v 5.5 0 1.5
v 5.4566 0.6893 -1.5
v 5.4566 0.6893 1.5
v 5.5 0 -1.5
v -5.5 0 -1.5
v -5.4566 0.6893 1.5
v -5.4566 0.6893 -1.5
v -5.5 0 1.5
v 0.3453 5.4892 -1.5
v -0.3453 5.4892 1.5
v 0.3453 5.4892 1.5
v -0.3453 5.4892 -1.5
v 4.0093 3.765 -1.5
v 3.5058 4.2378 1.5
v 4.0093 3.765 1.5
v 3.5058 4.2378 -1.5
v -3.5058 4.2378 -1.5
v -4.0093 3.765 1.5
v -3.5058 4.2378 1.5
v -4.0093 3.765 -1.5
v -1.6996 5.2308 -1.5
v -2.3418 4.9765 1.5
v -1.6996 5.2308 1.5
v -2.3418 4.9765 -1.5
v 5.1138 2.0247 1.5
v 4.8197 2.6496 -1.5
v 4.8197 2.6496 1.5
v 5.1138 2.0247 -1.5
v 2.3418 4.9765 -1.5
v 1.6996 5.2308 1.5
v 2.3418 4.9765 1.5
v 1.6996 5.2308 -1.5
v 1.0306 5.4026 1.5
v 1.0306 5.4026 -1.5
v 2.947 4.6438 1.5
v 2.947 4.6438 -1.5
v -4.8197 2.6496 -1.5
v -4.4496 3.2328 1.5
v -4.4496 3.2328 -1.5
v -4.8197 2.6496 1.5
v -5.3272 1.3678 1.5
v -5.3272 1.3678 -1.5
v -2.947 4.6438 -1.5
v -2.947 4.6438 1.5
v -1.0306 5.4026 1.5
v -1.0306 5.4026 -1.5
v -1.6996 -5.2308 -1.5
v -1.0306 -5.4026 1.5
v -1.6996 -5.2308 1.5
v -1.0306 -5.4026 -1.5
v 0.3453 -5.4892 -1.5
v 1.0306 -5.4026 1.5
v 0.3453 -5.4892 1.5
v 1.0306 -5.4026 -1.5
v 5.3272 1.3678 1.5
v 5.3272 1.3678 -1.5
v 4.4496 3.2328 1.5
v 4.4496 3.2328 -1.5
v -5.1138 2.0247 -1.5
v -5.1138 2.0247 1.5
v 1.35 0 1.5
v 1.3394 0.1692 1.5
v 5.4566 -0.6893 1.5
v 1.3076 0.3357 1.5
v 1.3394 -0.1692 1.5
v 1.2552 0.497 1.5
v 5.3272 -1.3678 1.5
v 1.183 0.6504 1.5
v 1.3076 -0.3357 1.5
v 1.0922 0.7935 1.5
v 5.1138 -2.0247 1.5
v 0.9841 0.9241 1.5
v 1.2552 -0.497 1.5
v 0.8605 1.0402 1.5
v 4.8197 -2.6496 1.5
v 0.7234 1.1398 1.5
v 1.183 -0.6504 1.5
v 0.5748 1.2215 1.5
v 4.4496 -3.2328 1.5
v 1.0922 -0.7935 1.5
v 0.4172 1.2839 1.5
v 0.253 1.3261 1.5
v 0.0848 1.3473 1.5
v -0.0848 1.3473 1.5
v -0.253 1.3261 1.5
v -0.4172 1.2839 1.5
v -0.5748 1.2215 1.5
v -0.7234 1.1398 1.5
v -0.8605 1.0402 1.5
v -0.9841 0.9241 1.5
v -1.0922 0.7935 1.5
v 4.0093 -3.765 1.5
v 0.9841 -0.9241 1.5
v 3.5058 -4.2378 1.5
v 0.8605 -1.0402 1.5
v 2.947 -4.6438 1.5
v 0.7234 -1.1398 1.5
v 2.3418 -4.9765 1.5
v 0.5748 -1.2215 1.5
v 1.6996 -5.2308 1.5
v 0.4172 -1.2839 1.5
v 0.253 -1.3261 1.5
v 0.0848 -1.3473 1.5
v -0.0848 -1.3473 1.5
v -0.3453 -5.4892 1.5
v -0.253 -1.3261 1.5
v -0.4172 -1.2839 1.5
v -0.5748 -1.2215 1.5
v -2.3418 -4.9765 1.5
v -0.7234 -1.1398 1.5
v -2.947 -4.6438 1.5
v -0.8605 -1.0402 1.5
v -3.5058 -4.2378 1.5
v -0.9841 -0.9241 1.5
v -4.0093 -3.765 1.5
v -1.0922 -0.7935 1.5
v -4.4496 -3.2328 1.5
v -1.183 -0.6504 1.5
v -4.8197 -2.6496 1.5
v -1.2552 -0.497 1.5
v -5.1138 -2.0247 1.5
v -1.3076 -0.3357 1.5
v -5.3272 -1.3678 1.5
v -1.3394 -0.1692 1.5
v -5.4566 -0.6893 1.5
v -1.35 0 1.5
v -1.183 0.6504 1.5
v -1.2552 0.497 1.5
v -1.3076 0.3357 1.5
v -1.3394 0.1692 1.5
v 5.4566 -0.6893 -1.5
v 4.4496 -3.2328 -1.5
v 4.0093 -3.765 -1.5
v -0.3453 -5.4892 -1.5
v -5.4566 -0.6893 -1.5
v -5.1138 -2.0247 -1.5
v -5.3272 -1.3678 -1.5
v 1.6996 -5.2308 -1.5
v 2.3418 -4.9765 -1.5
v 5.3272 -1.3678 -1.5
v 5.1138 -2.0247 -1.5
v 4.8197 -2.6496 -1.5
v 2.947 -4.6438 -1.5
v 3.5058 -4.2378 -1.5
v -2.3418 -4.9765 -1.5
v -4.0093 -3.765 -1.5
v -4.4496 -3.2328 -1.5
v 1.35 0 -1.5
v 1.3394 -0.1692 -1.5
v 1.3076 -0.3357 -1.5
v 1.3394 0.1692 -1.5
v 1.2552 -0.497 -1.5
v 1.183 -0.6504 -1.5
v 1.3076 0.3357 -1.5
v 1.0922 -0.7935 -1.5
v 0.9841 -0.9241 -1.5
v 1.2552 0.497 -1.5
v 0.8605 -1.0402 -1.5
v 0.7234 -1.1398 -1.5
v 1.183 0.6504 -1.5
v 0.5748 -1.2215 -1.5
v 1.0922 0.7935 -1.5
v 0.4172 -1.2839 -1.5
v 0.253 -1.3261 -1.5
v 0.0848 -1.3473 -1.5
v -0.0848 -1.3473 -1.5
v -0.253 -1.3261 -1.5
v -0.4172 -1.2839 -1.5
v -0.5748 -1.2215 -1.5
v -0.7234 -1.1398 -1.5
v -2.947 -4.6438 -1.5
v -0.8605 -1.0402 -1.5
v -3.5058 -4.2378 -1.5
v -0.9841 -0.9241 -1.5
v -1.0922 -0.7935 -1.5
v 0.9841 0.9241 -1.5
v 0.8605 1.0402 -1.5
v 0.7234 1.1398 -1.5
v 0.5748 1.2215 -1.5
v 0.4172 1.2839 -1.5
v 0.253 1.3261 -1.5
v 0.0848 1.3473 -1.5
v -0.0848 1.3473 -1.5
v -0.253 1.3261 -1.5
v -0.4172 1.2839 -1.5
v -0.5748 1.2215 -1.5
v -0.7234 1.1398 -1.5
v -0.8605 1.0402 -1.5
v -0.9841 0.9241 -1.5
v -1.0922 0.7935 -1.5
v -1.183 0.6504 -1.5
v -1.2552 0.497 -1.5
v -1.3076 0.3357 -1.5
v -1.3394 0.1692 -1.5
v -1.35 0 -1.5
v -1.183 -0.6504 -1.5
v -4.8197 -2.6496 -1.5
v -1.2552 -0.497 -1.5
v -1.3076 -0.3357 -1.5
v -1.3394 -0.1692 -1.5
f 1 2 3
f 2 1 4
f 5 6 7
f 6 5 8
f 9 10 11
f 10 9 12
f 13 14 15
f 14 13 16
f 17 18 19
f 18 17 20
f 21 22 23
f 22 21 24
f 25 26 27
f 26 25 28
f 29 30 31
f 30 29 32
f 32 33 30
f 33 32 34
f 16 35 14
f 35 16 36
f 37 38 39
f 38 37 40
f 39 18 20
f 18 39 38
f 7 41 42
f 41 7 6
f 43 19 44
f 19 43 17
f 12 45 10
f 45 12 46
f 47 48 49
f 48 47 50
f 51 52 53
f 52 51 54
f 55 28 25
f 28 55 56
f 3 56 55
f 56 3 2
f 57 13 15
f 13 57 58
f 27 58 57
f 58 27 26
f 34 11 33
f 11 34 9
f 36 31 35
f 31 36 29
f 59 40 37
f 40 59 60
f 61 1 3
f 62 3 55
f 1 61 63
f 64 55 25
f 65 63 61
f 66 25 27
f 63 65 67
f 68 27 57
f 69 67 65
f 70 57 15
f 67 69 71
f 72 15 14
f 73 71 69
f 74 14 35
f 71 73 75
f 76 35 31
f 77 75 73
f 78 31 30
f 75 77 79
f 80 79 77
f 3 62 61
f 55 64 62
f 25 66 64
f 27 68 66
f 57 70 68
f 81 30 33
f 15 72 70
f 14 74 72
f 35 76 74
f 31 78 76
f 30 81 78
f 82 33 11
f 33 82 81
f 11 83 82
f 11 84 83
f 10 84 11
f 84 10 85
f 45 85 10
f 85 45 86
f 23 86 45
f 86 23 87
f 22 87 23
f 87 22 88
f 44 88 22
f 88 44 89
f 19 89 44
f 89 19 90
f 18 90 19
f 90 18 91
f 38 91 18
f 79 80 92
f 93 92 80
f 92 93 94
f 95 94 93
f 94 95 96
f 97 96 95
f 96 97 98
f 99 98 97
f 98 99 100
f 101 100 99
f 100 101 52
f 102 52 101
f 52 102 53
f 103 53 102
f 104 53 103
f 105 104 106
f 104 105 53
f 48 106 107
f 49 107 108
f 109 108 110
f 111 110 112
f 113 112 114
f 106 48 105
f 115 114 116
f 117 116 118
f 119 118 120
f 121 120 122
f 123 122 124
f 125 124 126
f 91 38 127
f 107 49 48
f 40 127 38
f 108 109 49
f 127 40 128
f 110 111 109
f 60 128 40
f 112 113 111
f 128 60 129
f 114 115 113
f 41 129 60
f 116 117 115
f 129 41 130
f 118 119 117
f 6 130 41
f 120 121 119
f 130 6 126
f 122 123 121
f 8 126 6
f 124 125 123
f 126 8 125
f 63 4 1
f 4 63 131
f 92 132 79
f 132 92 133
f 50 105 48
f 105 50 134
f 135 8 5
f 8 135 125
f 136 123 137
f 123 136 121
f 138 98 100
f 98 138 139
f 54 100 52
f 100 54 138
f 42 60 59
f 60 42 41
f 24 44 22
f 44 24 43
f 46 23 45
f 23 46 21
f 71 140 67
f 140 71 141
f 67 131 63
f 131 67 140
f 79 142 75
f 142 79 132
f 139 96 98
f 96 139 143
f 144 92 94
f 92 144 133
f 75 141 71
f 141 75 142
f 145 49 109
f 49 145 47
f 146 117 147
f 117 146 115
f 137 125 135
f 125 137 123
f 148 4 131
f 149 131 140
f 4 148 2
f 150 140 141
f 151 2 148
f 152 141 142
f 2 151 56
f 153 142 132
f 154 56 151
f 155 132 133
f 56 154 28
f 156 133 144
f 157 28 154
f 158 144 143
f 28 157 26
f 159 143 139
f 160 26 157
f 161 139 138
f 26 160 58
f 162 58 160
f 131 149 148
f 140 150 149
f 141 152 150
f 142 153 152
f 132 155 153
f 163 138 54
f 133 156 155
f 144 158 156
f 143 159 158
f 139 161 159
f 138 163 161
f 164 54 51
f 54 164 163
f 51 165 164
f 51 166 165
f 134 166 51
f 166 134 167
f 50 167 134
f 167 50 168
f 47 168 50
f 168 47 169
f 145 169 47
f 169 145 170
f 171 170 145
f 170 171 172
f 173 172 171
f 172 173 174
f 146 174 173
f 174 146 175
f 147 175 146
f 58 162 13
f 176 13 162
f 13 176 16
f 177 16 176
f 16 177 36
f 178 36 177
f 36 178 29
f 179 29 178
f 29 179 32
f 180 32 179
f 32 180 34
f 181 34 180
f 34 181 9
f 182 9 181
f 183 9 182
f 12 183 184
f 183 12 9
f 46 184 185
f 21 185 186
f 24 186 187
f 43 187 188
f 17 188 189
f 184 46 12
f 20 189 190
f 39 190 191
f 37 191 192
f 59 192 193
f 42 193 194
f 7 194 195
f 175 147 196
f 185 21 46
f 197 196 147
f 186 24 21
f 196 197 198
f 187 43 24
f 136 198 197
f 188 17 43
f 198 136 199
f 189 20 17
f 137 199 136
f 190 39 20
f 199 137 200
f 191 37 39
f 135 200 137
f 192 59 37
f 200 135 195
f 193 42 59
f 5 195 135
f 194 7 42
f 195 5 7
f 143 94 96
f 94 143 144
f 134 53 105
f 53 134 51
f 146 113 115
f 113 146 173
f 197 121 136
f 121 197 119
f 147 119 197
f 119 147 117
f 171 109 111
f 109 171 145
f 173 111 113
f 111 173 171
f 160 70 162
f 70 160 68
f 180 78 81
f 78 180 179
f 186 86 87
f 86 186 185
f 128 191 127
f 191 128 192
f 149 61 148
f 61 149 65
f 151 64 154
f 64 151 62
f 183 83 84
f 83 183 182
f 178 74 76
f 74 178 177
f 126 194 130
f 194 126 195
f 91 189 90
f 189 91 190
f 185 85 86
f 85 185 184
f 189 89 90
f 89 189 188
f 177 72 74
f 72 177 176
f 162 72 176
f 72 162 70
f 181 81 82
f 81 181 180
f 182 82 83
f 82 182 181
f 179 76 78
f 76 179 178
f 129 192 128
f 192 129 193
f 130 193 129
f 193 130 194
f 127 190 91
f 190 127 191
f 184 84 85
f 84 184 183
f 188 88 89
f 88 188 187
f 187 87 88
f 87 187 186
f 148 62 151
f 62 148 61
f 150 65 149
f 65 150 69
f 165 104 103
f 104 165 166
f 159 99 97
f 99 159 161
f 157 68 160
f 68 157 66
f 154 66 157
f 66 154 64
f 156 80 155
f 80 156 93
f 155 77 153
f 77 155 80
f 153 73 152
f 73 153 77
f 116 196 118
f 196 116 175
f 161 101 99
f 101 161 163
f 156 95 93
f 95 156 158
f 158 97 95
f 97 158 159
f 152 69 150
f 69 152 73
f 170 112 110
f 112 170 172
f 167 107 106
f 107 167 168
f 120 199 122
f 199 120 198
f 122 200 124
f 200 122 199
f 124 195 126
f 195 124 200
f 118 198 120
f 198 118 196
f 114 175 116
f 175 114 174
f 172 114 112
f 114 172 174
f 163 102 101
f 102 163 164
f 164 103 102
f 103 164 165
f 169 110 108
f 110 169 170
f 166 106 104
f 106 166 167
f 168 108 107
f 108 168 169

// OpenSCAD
$fn = 50;


difference() {
	union() {
		translate(v = [0, 0, -1.5000000000]) {
			cylinder(h = 3, r = 5.5000000000);
		}
	}
	union() {
		translate(v = [0, 0, -100.0000000000]) {
			cylinder(h = 200, r = 1.3500000000);
		}
	}
}
